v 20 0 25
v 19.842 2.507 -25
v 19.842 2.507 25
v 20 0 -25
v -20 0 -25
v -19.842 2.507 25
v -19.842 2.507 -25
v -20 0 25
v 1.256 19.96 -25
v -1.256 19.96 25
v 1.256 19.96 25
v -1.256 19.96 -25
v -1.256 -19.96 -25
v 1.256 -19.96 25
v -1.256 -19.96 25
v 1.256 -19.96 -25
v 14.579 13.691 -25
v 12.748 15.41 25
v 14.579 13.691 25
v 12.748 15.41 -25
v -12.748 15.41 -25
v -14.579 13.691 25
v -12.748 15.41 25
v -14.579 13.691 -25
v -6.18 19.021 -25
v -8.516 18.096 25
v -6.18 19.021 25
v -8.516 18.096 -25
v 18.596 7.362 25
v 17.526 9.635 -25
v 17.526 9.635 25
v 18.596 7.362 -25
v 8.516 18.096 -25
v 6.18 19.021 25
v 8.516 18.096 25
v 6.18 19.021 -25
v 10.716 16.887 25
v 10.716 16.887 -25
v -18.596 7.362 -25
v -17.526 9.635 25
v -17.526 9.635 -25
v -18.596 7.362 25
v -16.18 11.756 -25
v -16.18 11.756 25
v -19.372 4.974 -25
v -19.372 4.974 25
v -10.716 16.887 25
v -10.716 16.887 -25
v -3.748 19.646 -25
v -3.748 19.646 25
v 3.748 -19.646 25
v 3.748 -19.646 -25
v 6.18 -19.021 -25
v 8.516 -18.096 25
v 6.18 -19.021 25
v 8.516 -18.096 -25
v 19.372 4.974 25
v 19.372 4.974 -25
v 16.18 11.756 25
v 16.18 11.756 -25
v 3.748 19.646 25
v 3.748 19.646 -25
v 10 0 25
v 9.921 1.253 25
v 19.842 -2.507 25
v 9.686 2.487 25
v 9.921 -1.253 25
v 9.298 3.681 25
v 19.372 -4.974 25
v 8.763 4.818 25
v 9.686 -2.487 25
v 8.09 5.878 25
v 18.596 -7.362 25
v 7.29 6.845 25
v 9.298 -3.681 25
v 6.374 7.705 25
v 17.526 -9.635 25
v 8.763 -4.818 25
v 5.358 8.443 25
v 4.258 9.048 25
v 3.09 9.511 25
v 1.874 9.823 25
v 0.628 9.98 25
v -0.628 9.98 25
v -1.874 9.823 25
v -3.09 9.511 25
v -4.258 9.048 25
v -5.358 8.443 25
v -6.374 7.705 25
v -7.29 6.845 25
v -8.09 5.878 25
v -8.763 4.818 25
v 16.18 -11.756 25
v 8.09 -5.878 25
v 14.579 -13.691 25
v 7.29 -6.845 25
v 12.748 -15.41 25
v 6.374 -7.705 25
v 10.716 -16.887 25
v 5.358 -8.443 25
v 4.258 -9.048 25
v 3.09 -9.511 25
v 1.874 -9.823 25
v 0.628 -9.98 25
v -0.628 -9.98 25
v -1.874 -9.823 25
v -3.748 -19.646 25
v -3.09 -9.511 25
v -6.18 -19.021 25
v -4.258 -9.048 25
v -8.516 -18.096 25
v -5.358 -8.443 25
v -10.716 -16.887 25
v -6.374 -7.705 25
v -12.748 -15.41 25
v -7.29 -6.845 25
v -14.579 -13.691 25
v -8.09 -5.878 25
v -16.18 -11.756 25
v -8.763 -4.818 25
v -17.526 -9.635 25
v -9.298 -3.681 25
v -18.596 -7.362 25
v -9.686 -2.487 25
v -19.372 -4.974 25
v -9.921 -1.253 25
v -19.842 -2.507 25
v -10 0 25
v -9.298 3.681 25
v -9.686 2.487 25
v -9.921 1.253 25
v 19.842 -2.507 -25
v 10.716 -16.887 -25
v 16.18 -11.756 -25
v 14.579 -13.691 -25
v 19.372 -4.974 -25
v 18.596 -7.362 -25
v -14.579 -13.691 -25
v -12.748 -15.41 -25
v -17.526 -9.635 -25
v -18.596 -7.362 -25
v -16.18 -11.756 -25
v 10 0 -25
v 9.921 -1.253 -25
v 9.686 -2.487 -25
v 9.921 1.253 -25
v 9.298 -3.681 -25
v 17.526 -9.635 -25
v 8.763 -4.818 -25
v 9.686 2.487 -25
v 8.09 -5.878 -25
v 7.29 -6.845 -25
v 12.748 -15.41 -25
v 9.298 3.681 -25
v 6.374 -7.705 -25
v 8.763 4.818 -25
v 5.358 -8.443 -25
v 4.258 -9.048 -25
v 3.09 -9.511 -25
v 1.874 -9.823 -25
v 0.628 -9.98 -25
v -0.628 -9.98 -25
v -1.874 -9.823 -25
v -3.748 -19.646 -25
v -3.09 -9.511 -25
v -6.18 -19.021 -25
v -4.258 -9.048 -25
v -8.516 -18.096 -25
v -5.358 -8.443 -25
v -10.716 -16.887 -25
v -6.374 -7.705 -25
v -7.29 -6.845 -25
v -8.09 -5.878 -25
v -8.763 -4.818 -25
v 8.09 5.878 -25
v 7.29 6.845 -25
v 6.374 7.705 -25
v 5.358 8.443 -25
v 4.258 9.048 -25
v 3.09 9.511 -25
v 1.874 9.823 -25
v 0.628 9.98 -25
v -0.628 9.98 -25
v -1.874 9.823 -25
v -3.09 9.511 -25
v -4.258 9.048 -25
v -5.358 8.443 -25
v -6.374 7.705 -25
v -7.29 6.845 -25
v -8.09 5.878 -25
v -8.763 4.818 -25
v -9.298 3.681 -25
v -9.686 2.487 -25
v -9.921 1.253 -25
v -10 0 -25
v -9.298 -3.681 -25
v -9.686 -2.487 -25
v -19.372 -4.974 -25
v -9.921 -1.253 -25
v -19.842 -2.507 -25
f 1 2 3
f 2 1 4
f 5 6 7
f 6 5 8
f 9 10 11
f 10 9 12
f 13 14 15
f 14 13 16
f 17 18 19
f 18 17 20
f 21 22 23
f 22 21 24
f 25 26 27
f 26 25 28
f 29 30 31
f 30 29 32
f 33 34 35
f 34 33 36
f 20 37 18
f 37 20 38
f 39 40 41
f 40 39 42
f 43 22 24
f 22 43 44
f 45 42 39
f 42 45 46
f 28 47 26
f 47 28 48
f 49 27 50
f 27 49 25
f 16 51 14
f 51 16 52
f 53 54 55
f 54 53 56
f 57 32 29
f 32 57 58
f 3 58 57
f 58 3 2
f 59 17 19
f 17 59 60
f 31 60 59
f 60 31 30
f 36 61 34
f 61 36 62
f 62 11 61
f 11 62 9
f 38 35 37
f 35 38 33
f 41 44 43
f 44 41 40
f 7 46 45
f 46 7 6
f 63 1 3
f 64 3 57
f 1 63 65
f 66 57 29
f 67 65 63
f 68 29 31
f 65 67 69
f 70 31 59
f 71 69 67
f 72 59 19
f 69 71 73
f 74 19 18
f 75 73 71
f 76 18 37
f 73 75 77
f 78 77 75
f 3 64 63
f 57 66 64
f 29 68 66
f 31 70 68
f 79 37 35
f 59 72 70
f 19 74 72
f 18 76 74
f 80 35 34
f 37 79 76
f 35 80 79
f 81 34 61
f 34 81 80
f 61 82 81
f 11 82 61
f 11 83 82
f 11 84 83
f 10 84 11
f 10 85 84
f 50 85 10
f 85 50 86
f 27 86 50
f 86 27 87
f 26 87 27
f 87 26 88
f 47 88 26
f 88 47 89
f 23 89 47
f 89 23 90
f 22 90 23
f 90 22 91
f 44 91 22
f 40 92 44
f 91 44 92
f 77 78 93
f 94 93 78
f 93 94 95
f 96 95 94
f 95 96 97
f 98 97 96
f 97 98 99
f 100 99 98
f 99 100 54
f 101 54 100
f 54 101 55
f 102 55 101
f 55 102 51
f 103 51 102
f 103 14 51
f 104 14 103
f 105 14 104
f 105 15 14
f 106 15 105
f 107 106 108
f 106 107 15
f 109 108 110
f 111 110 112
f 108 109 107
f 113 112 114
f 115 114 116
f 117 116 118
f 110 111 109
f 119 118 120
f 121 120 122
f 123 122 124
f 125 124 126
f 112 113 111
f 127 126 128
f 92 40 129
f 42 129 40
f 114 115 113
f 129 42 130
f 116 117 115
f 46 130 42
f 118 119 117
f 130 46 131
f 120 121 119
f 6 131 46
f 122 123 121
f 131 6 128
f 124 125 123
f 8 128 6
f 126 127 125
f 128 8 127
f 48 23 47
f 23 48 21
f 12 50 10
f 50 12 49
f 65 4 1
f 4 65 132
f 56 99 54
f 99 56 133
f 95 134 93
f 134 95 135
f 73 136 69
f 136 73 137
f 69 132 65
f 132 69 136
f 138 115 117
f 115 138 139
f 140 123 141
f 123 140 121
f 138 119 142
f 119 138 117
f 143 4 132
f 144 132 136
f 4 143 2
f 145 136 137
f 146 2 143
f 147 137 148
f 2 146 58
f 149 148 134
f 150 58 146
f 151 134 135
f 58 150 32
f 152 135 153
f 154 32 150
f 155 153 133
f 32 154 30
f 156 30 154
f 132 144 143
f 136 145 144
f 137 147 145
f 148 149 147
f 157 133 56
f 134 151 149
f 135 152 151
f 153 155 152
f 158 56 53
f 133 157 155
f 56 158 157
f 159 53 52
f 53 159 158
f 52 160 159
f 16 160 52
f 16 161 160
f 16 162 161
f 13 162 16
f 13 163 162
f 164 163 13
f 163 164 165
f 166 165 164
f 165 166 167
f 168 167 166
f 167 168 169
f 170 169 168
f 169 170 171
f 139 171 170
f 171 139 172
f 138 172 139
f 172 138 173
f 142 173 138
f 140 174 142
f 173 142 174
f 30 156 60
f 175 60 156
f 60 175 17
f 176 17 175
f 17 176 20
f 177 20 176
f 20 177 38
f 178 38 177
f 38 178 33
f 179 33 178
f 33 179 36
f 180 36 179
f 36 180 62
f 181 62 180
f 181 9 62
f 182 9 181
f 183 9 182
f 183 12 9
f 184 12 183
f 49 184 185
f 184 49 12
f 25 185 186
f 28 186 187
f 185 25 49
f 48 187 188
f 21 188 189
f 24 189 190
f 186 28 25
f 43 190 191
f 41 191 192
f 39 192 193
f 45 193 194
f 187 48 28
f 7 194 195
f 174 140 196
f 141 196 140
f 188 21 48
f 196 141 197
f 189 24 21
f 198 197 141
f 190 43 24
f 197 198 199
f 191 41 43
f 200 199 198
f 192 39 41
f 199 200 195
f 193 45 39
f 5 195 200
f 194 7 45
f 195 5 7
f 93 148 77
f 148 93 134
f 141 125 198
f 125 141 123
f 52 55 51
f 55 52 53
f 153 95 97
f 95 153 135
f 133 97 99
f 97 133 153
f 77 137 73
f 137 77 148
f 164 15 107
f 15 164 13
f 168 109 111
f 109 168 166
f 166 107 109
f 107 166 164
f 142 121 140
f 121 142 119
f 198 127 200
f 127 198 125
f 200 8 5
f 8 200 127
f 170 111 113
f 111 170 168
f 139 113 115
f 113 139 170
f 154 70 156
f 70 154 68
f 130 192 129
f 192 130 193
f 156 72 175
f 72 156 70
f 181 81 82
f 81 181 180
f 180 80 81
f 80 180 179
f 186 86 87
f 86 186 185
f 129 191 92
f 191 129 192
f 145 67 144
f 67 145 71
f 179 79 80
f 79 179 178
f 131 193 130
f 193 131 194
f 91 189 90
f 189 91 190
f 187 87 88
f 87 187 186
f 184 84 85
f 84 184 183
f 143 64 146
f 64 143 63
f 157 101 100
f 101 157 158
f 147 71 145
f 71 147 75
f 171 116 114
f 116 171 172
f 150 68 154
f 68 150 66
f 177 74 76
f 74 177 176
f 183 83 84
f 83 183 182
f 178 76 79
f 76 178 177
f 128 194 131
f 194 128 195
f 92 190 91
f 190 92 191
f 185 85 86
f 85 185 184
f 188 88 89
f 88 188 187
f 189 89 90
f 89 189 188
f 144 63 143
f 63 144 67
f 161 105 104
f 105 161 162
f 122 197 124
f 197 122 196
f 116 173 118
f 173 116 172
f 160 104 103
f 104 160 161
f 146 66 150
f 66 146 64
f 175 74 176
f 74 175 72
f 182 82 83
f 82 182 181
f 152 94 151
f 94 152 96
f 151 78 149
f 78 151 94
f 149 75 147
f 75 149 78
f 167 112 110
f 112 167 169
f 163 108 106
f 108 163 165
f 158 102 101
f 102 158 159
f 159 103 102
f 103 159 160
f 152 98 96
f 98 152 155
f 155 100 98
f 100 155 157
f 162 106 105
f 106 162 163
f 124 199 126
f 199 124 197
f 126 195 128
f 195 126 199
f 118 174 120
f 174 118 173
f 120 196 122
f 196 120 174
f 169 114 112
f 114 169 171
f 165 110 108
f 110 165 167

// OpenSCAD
$fn = 50;


difference() {
	union() {
		translate(v = [0, 0, -25.0000000000]) {
			cylinder(h = 50, r = 20.0000000000);
		}
	}
	union() {
		translate(v = [0, 0, -100.0000000000]) {
			cylinder(h = 200, r = 10);
		}
	}
}
